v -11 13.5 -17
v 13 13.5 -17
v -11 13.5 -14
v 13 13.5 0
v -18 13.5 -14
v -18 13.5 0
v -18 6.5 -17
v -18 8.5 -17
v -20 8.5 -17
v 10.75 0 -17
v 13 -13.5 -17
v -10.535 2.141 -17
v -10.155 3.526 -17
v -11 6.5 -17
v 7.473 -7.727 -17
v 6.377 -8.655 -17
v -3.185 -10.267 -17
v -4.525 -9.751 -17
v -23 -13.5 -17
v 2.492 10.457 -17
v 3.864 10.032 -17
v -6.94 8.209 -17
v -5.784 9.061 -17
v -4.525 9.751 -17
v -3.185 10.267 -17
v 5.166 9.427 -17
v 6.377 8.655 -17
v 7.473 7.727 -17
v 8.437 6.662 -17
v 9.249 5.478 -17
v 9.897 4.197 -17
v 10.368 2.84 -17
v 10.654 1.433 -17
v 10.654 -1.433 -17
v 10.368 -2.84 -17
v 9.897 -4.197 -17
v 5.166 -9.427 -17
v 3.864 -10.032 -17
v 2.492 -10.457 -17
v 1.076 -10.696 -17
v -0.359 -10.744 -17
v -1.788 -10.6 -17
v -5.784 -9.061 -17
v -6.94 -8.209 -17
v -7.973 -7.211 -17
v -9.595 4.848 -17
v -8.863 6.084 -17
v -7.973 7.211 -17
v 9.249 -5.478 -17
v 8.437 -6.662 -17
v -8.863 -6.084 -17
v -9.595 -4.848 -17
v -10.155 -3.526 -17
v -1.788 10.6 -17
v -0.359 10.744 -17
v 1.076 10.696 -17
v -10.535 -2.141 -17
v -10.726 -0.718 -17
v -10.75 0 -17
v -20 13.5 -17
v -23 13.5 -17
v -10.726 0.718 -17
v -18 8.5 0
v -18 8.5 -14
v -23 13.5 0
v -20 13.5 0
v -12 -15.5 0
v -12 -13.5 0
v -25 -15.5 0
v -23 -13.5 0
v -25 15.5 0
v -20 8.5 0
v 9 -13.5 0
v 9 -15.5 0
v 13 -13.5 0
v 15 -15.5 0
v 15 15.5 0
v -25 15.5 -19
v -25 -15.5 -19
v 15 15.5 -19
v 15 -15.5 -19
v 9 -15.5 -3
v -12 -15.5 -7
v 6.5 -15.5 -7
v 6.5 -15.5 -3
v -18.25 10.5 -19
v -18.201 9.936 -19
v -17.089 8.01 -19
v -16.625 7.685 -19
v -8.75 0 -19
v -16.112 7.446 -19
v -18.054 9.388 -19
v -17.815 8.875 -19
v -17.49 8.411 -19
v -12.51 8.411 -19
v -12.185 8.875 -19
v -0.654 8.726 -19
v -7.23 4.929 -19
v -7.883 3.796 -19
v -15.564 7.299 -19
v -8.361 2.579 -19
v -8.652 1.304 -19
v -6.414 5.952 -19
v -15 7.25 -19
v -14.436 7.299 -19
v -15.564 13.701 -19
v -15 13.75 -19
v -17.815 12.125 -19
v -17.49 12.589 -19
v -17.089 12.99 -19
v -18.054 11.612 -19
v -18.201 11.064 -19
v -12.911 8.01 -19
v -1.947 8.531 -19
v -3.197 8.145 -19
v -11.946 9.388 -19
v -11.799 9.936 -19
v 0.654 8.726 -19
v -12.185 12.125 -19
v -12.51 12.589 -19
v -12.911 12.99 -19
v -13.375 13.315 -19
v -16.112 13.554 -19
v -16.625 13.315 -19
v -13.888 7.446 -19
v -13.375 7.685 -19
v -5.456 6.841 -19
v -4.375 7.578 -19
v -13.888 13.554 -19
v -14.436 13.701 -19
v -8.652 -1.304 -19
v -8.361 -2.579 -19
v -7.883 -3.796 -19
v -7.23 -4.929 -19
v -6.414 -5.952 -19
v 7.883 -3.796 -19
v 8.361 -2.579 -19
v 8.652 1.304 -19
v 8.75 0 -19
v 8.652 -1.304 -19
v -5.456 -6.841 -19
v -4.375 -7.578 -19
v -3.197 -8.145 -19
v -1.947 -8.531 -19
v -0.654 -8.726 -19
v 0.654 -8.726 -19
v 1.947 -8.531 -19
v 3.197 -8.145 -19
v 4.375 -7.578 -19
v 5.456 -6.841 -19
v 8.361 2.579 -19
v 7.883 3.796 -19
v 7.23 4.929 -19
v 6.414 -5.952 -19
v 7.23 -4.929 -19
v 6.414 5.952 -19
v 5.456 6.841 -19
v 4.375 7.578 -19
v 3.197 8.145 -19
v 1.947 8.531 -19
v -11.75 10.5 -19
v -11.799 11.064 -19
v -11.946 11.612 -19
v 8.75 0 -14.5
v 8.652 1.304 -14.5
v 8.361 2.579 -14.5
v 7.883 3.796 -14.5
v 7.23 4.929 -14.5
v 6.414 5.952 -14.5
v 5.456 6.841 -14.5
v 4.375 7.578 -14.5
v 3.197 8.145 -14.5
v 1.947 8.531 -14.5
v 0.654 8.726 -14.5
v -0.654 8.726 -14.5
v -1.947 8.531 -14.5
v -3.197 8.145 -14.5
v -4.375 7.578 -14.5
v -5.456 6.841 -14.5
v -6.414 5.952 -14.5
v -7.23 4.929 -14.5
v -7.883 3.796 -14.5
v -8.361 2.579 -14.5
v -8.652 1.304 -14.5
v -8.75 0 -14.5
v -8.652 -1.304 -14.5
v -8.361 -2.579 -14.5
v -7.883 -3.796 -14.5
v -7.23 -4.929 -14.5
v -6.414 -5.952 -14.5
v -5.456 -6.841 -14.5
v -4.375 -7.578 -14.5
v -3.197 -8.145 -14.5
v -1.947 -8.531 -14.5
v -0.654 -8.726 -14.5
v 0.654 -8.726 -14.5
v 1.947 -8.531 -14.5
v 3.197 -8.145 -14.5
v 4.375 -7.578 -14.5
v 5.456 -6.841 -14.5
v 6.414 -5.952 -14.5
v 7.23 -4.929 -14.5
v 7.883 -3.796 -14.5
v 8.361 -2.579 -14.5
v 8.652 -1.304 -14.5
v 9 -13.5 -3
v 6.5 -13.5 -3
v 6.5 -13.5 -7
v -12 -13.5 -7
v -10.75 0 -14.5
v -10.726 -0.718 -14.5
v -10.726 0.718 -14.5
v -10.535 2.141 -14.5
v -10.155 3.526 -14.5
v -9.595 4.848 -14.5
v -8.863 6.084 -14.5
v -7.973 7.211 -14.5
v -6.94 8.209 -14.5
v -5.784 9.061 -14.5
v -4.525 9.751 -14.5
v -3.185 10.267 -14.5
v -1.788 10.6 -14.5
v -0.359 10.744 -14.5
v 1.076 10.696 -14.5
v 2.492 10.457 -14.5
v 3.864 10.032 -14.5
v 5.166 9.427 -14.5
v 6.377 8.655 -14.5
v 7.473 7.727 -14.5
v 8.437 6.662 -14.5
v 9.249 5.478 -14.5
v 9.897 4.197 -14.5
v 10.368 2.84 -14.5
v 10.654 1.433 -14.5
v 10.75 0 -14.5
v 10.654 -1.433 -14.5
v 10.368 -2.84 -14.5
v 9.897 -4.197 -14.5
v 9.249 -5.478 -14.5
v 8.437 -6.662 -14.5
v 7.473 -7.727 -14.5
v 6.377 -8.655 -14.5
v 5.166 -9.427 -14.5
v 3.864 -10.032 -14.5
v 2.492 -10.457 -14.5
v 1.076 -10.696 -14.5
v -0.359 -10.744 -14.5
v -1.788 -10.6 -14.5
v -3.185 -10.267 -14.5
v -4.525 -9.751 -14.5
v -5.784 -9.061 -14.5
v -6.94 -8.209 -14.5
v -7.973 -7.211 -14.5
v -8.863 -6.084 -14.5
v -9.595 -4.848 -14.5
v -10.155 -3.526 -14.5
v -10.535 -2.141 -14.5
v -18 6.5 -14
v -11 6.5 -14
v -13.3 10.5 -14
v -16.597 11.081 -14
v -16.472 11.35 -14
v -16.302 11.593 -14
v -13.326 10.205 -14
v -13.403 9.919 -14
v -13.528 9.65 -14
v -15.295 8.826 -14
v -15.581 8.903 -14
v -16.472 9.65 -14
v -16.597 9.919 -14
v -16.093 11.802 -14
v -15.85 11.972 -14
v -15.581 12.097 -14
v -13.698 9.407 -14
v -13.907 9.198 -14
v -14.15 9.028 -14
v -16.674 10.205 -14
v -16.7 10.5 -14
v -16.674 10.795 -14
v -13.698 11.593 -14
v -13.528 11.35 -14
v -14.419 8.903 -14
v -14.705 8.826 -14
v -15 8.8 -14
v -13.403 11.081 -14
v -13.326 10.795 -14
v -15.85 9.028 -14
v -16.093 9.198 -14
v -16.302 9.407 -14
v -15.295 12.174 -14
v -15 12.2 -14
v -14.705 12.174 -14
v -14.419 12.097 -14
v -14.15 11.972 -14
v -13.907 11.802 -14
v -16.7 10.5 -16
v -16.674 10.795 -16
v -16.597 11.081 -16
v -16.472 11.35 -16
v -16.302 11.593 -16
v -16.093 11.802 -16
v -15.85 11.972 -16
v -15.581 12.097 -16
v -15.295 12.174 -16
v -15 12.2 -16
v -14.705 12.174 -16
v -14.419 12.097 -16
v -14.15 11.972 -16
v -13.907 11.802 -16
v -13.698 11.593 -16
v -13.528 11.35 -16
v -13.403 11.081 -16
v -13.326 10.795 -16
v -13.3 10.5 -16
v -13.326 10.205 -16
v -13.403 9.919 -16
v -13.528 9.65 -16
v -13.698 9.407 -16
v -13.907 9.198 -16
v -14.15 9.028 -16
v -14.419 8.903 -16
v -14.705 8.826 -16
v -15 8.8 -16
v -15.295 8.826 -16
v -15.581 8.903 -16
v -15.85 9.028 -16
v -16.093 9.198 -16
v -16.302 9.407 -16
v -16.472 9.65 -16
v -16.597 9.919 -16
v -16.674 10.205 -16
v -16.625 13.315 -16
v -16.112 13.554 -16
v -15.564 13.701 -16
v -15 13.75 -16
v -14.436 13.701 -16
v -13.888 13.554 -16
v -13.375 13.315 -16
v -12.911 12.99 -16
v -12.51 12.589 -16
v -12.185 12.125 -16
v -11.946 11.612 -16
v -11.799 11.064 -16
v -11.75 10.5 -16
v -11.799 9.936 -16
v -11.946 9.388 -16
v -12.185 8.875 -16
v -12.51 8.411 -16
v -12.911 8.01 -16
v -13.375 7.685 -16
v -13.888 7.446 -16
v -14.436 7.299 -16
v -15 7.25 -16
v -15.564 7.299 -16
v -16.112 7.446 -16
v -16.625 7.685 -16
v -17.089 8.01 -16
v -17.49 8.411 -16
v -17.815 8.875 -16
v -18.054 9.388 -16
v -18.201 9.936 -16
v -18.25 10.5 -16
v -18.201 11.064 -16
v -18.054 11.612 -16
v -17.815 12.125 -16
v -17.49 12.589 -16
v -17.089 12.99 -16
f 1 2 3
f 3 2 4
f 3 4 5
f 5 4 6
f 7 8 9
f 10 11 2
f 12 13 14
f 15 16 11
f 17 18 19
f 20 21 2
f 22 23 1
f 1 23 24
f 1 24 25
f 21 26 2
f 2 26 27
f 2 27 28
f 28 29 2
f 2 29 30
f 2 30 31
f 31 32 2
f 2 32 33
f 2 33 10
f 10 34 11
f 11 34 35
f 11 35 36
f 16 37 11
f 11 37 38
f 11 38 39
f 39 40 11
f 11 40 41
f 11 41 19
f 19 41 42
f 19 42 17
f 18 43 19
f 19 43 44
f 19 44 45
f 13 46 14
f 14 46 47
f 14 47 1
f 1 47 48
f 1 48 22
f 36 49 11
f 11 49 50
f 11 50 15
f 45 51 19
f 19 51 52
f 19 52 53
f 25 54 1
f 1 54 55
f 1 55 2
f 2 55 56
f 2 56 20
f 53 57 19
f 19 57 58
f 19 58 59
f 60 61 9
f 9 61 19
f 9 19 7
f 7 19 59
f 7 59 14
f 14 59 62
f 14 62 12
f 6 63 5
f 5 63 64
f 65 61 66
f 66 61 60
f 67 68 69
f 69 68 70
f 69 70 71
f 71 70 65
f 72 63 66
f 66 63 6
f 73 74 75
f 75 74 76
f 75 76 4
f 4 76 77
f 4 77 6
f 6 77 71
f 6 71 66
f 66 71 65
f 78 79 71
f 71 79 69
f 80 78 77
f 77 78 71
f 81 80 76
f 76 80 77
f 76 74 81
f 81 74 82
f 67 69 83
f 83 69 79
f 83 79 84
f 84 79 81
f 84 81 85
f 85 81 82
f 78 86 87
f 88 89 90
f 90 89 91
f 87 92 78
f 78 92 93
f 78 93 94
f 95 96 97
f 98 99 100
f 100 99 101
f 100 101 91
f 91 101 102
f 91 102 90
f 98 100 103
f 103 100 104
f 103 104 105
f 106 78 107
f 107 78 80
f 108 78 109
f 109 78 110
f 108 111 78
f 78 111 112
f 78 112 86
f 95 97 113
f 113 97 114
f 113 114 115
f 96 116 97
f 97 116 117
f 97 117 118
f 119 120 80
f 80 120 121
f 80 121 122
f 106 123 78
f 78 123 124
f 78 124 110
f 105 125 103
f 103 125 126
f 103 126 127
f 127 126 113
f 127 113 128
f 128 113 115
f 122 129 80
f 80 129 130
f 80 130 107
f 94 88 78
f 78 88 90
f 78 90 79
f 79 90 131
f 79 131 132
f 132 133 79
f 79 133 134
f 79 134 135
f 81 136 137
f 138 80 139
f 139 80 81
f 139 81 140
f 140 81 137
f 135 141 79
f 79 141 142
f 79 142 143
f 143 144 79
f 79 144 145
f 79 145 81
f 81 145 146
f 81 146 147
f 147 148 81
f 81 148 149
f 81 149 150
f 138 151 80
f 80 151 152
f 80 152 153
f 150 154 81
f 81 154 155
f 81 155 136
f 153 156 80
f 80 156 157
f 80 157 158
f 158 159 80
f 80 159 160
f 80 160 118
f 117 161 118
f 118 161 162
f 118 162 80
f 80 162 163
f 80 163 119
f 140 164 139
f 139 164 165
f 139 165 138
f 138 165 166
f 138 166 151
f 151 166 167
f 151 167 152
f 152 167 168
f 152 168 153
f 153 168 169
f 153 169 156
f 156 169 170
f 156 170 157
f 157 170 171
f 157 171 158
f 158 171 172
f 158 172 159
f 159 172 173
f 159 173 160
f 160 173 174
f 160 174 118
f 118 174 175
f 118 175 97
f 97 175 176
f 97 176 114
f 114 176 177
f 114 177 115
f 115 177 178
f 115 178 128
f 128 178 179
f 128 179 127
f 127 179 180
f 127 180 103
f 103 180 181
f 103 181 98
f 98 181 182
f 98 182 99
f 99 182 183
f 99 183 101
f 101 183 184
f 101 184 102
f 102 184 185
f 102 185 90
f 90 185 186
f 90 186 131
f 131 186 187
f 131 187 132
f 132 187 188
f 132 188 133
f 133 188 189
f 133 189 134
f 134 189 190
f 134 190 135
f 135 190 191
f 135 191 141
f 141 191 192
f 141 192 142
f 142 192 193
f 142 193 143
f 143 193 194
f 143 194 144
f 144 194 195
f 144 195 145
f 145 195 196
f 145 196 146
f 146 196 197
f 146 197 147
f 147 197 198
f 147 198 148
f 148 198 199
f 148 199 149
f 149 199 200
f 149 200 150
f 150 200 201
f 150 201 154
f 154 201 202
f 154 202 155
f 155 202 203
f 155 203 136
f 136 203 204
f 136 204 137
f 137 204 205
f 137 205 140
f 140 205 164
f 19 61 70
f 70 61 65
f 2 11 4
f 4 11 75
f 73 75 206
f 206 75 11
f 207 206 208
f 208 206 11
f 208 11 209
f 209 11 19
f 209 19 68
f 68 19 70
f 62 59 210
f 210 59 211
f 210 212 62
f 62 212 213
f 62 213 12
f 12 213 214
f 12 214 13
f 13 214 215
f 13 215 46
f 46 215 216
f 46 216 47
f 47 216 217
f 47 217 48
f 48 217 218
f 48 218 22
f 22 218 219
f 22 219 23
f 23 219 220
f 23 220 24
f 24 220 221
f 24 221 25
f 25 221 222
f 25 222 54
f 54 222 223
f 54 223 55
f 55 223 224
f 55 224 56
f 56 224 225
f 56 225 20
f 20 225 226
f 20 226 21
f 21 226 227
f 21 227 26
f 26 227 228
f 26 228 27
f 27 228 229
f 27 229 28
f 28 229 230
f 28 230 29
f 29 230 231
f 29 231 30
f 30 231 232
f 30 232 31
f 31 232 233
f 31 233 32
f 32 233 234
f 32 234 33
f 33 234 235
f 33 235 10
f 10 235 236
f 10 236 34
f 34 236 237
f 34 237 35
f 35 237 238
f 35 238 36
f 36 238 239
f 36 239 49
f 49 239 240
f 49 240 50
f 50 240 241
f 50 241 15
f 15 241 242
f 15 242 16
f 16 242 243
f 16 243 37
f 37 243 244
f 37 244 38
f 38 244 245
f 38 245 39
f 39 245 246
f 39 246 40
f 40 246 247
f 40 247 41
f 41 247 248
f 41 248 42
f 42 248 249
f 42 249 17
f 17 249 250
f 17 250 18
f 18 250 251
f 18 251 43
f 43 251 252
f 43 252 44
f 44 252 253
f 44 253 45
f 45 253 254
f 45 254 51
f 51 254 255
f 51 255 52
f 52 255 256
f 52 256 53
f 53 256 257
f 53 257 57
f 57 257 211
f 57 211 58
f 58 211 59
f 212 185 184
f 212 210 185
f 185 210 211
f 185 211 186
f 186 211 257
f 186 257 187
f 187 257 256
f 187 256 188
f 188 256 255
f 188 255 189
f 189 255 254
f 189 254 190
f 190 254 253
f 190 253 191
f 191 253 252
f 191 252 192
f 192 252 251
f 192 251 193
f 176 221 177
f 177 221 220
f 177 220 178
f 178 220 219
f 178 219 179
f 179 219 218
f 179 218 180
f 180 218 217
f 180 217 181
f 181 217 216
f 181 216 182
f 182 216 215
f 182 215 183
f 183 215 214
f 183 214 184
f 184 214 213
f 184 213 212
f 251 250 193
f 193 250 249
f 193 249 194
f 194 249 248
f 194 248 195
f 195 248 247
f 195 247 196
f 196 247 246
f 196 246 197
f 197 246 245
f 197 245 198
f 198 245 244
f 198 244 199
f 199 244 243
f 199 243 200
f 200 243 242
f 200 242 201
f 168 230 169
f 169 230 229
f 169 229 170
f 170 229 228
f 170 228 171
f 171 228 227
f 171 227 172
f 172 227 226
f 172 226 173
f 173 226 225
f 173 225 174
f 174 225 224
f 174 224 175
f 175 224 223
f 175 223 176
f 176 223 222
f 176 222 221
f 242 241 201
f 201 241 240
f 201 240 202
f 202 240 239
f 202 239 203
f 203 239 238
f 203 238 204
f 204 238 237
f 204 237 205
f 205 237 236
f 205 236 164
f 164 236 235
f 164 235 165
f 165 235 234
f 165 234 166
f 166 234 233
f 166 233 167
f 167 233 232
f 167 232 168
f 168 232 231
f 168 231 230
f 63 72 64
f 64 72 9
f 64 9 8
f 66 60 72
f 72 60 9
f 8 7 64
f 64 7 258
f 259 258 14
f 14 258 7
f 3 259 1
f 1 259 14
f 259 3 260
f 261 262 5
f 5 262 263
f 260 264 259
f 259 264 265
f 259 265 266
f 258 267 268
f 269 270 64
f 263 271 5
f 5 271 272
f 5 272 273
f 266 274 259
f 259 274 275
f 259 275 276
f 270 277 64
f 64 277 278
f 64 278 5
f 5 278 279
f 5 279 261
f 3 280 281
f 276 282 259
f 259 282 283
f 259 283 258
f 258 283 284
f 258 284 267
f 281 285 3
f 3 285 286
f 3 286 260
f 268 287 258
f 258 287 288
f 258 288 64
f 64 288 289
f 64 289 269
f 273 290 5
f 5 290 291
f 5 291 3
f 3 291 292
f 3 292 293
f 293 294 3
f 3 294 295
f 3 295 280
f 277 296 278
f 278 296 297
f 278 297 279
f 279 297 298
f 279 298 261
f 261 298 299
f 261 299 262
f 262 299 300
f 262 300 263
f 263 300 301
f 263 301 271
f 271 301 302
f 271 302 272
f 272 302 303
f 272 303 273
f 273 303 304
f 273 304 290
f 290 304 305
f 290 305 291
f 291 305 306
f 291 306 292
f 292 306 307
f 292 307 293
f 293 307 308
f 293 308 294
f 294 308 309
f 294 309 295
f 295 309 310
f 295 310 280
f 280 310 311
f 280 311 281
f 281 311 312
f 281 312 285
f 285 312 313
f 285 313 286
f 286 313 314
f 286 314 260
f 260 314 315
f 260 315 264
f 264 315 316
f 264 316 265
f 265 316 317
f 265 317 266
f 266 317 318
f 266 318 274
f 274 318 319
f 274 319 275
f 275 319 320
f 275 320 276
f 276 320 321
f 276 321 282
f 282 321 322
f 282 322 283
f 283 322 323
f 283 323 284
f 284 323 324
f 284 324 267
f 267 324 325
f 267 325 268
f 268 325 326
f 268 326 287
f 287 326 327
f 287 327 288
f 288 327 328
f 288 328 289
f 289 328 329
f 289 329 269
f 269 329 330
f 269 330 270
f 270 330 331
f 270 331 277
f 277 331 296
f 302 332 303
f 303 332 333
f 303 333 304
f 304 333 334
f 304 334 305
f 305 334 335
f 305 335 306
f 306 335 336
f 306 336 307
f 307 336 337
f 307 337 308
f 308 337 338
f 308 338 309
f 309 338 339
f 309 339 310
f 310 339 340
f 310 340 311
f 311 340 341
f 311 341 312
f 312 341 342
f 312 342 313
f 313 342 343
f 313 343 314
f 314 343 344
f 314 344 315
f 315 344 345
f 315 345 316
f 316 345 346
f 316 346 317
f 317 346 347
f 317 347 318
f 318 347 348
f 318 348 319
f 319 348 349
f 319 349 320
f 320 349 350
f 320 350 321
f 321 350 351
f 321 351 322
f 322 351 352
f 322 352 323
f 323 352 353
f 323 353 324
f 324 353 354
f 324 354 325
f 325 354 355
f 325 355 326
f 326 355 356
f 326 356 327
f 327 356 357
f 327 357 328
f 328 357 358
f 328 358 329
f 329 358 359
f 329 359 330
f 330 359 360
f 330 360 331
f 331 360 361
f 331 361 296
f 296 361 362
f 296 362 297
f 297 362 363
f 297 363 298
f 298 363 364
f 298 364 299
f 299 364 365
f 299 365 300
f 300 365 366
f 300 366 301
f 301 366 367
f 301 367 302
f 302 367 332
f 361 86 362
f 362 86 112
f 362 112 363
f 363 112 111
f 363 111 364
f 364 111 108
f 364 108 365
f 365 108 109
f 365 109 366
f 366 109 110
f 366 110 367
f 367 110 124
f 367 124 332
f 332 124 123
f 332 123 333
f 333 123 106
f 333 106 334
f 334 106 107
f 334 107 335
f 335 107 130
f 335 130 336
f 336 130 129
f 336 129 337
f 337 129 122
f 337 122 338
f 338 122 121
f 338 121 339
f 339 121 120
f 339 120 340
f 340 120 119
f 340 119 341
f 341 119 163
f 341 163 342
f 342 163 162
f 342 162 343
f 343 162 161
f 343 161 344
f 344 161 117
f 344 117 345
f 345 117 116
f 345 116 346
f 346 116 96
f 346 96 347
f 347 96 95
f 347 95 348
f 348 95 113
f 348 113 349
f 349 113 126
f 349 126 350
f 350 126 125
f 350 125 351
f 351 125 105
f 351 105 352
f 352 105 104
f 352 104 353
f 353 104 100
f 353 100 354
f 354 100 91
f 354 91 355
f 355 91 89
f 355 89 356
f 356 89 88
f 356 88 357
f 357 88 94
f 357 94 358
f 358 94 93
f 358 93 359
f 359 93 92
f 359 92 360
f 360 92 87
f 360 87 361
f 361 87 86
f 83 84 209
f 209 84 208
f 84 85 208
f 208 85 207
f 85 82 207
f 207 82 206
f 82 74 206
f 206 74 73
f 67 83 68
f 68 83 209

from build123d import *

# Parameters (mm, degrees)
SKETCH1_W                      = 40
SKETCH1_H                      = 31
SKETCH1_R                      = 8.75
BOSS_EXTRUDE1_DEPTH            = 19
SHELL1_T                       = -2
SKETCH2_R                      = 10.75
SKETCH2_R_2                    = 8.75
CUT_EXTRUDE1_DEPTH             = 14.5
SKETCH3_W                      = 2
SKETCH3_H                      = 5
BOSS_EXTRUDE2_DEPTH            = 17
SKETCH8_W                      = 7
SKETCH8_H                      = 7
BOSS_EXTRUDE3_DEPTH            = 3
CBORE_FOR_M3_SHCS1_D           = 3.4
CBORE_FOR_M3_SHCS1_CBORE_D     = 6.5
CBORE_FOR_M3_SHCS1_CBORE_DEPTH = 3
CUT_EXTRUDE3_REACH             = 46.125


with BuildPart() as part:
    # Sketch1 → Boss-Extrude1 (new body)
    with BuildSketch(Plane.XY):
        with Locations((-5, 0)):
            Rectangle(SKETCH1_W, SKETCH1_H)
        Circle(SKETCH1_R, mode=Mode.SUBTRACT)
    extrude(amount=-BOSS_EXTRUDE1_DEPTH)

    # Shell1
    shell1_openings = [part.faces().sort_by_distance(p)[0] for p in [
        (-5, -14.993936763, 0),
    ]]
    offset(amount=SHELL1_T, openings=shell1_openings, kind=Kind.INTERSECTION)

    # Sketch2 → Cut-Extrude1 (cut)
    with BuildSketch(Plane.XY):
        with Locations(Location((0, 0, 0), (0, 0, 180))):
            Circle(SKETCH2_R)
        Circle(SKETCH2_R_2, mode=Mode.SUBTRACT)
    extrude(amount=-CUT_EXTRUDE1_DEPTH, mode=Mode.SUBTRACT)

    # Sketch3 → Boss-Extrude2 (add)
    with BuildSketch(Plane.XY.offset(-17)):
        with Locations((-19, 11)):
            Rectangle(SKETCH3_W, SKETCH3_H)
    extrude(amount=BOSS_EXTRUDE2_DEPTH)

    # Sketch8 → Boss-Extrude3 (add)
    with BuildSketch(Plane.XY.offset(-17)):
        with Locations((-14.5, 10)):
            Rectangle(SKETCH8_W, SKETCH8_H)
    extrude(amount=BOSS_EXTRUDE3_DEPTH)

    # CBORE for M3 SHCS1 (through all)
    with Locations(Plane(origin=(0, 0, -19), x_dir=(-1, 0, 0), z_dir=(0, 0, -1))):
        with Locations((15, 10.5)):
            CounterBoreHole(CBORE_FOR_M3_SHCS1_D / 2, CBORE_FOR_M3_SHCS1_CBORE_D / 2, CBORE_FOR_M3_SHCS1_CBORE_DEPTH)

    # Sketch9 → Cut-Extrude3 (cut, up to next)
    with BuildSketch(Plane.XZ.offset(15.5), mode=Mode.PRIVATE) as cut_extrude3_sk1:
        Polygon((-12, 0), (6.5, 0), (9, 0), (9, -3), (6.5, -3), (6.5, -7), (-12, -7), align=None)
    cut_extrude3_tool1 = extrude(cut_extrude3_sk1.sketch, amount=-CUT_EXTRUDE3_REACH, mode=Mode.PRIVATE) & part.part
    add(cut_extrude3_tool1.solids().sort_by_distance((-2.175182, -15.5, -3.390511))[0], mode=Mode.SUBTRACT)


solid = part.part
